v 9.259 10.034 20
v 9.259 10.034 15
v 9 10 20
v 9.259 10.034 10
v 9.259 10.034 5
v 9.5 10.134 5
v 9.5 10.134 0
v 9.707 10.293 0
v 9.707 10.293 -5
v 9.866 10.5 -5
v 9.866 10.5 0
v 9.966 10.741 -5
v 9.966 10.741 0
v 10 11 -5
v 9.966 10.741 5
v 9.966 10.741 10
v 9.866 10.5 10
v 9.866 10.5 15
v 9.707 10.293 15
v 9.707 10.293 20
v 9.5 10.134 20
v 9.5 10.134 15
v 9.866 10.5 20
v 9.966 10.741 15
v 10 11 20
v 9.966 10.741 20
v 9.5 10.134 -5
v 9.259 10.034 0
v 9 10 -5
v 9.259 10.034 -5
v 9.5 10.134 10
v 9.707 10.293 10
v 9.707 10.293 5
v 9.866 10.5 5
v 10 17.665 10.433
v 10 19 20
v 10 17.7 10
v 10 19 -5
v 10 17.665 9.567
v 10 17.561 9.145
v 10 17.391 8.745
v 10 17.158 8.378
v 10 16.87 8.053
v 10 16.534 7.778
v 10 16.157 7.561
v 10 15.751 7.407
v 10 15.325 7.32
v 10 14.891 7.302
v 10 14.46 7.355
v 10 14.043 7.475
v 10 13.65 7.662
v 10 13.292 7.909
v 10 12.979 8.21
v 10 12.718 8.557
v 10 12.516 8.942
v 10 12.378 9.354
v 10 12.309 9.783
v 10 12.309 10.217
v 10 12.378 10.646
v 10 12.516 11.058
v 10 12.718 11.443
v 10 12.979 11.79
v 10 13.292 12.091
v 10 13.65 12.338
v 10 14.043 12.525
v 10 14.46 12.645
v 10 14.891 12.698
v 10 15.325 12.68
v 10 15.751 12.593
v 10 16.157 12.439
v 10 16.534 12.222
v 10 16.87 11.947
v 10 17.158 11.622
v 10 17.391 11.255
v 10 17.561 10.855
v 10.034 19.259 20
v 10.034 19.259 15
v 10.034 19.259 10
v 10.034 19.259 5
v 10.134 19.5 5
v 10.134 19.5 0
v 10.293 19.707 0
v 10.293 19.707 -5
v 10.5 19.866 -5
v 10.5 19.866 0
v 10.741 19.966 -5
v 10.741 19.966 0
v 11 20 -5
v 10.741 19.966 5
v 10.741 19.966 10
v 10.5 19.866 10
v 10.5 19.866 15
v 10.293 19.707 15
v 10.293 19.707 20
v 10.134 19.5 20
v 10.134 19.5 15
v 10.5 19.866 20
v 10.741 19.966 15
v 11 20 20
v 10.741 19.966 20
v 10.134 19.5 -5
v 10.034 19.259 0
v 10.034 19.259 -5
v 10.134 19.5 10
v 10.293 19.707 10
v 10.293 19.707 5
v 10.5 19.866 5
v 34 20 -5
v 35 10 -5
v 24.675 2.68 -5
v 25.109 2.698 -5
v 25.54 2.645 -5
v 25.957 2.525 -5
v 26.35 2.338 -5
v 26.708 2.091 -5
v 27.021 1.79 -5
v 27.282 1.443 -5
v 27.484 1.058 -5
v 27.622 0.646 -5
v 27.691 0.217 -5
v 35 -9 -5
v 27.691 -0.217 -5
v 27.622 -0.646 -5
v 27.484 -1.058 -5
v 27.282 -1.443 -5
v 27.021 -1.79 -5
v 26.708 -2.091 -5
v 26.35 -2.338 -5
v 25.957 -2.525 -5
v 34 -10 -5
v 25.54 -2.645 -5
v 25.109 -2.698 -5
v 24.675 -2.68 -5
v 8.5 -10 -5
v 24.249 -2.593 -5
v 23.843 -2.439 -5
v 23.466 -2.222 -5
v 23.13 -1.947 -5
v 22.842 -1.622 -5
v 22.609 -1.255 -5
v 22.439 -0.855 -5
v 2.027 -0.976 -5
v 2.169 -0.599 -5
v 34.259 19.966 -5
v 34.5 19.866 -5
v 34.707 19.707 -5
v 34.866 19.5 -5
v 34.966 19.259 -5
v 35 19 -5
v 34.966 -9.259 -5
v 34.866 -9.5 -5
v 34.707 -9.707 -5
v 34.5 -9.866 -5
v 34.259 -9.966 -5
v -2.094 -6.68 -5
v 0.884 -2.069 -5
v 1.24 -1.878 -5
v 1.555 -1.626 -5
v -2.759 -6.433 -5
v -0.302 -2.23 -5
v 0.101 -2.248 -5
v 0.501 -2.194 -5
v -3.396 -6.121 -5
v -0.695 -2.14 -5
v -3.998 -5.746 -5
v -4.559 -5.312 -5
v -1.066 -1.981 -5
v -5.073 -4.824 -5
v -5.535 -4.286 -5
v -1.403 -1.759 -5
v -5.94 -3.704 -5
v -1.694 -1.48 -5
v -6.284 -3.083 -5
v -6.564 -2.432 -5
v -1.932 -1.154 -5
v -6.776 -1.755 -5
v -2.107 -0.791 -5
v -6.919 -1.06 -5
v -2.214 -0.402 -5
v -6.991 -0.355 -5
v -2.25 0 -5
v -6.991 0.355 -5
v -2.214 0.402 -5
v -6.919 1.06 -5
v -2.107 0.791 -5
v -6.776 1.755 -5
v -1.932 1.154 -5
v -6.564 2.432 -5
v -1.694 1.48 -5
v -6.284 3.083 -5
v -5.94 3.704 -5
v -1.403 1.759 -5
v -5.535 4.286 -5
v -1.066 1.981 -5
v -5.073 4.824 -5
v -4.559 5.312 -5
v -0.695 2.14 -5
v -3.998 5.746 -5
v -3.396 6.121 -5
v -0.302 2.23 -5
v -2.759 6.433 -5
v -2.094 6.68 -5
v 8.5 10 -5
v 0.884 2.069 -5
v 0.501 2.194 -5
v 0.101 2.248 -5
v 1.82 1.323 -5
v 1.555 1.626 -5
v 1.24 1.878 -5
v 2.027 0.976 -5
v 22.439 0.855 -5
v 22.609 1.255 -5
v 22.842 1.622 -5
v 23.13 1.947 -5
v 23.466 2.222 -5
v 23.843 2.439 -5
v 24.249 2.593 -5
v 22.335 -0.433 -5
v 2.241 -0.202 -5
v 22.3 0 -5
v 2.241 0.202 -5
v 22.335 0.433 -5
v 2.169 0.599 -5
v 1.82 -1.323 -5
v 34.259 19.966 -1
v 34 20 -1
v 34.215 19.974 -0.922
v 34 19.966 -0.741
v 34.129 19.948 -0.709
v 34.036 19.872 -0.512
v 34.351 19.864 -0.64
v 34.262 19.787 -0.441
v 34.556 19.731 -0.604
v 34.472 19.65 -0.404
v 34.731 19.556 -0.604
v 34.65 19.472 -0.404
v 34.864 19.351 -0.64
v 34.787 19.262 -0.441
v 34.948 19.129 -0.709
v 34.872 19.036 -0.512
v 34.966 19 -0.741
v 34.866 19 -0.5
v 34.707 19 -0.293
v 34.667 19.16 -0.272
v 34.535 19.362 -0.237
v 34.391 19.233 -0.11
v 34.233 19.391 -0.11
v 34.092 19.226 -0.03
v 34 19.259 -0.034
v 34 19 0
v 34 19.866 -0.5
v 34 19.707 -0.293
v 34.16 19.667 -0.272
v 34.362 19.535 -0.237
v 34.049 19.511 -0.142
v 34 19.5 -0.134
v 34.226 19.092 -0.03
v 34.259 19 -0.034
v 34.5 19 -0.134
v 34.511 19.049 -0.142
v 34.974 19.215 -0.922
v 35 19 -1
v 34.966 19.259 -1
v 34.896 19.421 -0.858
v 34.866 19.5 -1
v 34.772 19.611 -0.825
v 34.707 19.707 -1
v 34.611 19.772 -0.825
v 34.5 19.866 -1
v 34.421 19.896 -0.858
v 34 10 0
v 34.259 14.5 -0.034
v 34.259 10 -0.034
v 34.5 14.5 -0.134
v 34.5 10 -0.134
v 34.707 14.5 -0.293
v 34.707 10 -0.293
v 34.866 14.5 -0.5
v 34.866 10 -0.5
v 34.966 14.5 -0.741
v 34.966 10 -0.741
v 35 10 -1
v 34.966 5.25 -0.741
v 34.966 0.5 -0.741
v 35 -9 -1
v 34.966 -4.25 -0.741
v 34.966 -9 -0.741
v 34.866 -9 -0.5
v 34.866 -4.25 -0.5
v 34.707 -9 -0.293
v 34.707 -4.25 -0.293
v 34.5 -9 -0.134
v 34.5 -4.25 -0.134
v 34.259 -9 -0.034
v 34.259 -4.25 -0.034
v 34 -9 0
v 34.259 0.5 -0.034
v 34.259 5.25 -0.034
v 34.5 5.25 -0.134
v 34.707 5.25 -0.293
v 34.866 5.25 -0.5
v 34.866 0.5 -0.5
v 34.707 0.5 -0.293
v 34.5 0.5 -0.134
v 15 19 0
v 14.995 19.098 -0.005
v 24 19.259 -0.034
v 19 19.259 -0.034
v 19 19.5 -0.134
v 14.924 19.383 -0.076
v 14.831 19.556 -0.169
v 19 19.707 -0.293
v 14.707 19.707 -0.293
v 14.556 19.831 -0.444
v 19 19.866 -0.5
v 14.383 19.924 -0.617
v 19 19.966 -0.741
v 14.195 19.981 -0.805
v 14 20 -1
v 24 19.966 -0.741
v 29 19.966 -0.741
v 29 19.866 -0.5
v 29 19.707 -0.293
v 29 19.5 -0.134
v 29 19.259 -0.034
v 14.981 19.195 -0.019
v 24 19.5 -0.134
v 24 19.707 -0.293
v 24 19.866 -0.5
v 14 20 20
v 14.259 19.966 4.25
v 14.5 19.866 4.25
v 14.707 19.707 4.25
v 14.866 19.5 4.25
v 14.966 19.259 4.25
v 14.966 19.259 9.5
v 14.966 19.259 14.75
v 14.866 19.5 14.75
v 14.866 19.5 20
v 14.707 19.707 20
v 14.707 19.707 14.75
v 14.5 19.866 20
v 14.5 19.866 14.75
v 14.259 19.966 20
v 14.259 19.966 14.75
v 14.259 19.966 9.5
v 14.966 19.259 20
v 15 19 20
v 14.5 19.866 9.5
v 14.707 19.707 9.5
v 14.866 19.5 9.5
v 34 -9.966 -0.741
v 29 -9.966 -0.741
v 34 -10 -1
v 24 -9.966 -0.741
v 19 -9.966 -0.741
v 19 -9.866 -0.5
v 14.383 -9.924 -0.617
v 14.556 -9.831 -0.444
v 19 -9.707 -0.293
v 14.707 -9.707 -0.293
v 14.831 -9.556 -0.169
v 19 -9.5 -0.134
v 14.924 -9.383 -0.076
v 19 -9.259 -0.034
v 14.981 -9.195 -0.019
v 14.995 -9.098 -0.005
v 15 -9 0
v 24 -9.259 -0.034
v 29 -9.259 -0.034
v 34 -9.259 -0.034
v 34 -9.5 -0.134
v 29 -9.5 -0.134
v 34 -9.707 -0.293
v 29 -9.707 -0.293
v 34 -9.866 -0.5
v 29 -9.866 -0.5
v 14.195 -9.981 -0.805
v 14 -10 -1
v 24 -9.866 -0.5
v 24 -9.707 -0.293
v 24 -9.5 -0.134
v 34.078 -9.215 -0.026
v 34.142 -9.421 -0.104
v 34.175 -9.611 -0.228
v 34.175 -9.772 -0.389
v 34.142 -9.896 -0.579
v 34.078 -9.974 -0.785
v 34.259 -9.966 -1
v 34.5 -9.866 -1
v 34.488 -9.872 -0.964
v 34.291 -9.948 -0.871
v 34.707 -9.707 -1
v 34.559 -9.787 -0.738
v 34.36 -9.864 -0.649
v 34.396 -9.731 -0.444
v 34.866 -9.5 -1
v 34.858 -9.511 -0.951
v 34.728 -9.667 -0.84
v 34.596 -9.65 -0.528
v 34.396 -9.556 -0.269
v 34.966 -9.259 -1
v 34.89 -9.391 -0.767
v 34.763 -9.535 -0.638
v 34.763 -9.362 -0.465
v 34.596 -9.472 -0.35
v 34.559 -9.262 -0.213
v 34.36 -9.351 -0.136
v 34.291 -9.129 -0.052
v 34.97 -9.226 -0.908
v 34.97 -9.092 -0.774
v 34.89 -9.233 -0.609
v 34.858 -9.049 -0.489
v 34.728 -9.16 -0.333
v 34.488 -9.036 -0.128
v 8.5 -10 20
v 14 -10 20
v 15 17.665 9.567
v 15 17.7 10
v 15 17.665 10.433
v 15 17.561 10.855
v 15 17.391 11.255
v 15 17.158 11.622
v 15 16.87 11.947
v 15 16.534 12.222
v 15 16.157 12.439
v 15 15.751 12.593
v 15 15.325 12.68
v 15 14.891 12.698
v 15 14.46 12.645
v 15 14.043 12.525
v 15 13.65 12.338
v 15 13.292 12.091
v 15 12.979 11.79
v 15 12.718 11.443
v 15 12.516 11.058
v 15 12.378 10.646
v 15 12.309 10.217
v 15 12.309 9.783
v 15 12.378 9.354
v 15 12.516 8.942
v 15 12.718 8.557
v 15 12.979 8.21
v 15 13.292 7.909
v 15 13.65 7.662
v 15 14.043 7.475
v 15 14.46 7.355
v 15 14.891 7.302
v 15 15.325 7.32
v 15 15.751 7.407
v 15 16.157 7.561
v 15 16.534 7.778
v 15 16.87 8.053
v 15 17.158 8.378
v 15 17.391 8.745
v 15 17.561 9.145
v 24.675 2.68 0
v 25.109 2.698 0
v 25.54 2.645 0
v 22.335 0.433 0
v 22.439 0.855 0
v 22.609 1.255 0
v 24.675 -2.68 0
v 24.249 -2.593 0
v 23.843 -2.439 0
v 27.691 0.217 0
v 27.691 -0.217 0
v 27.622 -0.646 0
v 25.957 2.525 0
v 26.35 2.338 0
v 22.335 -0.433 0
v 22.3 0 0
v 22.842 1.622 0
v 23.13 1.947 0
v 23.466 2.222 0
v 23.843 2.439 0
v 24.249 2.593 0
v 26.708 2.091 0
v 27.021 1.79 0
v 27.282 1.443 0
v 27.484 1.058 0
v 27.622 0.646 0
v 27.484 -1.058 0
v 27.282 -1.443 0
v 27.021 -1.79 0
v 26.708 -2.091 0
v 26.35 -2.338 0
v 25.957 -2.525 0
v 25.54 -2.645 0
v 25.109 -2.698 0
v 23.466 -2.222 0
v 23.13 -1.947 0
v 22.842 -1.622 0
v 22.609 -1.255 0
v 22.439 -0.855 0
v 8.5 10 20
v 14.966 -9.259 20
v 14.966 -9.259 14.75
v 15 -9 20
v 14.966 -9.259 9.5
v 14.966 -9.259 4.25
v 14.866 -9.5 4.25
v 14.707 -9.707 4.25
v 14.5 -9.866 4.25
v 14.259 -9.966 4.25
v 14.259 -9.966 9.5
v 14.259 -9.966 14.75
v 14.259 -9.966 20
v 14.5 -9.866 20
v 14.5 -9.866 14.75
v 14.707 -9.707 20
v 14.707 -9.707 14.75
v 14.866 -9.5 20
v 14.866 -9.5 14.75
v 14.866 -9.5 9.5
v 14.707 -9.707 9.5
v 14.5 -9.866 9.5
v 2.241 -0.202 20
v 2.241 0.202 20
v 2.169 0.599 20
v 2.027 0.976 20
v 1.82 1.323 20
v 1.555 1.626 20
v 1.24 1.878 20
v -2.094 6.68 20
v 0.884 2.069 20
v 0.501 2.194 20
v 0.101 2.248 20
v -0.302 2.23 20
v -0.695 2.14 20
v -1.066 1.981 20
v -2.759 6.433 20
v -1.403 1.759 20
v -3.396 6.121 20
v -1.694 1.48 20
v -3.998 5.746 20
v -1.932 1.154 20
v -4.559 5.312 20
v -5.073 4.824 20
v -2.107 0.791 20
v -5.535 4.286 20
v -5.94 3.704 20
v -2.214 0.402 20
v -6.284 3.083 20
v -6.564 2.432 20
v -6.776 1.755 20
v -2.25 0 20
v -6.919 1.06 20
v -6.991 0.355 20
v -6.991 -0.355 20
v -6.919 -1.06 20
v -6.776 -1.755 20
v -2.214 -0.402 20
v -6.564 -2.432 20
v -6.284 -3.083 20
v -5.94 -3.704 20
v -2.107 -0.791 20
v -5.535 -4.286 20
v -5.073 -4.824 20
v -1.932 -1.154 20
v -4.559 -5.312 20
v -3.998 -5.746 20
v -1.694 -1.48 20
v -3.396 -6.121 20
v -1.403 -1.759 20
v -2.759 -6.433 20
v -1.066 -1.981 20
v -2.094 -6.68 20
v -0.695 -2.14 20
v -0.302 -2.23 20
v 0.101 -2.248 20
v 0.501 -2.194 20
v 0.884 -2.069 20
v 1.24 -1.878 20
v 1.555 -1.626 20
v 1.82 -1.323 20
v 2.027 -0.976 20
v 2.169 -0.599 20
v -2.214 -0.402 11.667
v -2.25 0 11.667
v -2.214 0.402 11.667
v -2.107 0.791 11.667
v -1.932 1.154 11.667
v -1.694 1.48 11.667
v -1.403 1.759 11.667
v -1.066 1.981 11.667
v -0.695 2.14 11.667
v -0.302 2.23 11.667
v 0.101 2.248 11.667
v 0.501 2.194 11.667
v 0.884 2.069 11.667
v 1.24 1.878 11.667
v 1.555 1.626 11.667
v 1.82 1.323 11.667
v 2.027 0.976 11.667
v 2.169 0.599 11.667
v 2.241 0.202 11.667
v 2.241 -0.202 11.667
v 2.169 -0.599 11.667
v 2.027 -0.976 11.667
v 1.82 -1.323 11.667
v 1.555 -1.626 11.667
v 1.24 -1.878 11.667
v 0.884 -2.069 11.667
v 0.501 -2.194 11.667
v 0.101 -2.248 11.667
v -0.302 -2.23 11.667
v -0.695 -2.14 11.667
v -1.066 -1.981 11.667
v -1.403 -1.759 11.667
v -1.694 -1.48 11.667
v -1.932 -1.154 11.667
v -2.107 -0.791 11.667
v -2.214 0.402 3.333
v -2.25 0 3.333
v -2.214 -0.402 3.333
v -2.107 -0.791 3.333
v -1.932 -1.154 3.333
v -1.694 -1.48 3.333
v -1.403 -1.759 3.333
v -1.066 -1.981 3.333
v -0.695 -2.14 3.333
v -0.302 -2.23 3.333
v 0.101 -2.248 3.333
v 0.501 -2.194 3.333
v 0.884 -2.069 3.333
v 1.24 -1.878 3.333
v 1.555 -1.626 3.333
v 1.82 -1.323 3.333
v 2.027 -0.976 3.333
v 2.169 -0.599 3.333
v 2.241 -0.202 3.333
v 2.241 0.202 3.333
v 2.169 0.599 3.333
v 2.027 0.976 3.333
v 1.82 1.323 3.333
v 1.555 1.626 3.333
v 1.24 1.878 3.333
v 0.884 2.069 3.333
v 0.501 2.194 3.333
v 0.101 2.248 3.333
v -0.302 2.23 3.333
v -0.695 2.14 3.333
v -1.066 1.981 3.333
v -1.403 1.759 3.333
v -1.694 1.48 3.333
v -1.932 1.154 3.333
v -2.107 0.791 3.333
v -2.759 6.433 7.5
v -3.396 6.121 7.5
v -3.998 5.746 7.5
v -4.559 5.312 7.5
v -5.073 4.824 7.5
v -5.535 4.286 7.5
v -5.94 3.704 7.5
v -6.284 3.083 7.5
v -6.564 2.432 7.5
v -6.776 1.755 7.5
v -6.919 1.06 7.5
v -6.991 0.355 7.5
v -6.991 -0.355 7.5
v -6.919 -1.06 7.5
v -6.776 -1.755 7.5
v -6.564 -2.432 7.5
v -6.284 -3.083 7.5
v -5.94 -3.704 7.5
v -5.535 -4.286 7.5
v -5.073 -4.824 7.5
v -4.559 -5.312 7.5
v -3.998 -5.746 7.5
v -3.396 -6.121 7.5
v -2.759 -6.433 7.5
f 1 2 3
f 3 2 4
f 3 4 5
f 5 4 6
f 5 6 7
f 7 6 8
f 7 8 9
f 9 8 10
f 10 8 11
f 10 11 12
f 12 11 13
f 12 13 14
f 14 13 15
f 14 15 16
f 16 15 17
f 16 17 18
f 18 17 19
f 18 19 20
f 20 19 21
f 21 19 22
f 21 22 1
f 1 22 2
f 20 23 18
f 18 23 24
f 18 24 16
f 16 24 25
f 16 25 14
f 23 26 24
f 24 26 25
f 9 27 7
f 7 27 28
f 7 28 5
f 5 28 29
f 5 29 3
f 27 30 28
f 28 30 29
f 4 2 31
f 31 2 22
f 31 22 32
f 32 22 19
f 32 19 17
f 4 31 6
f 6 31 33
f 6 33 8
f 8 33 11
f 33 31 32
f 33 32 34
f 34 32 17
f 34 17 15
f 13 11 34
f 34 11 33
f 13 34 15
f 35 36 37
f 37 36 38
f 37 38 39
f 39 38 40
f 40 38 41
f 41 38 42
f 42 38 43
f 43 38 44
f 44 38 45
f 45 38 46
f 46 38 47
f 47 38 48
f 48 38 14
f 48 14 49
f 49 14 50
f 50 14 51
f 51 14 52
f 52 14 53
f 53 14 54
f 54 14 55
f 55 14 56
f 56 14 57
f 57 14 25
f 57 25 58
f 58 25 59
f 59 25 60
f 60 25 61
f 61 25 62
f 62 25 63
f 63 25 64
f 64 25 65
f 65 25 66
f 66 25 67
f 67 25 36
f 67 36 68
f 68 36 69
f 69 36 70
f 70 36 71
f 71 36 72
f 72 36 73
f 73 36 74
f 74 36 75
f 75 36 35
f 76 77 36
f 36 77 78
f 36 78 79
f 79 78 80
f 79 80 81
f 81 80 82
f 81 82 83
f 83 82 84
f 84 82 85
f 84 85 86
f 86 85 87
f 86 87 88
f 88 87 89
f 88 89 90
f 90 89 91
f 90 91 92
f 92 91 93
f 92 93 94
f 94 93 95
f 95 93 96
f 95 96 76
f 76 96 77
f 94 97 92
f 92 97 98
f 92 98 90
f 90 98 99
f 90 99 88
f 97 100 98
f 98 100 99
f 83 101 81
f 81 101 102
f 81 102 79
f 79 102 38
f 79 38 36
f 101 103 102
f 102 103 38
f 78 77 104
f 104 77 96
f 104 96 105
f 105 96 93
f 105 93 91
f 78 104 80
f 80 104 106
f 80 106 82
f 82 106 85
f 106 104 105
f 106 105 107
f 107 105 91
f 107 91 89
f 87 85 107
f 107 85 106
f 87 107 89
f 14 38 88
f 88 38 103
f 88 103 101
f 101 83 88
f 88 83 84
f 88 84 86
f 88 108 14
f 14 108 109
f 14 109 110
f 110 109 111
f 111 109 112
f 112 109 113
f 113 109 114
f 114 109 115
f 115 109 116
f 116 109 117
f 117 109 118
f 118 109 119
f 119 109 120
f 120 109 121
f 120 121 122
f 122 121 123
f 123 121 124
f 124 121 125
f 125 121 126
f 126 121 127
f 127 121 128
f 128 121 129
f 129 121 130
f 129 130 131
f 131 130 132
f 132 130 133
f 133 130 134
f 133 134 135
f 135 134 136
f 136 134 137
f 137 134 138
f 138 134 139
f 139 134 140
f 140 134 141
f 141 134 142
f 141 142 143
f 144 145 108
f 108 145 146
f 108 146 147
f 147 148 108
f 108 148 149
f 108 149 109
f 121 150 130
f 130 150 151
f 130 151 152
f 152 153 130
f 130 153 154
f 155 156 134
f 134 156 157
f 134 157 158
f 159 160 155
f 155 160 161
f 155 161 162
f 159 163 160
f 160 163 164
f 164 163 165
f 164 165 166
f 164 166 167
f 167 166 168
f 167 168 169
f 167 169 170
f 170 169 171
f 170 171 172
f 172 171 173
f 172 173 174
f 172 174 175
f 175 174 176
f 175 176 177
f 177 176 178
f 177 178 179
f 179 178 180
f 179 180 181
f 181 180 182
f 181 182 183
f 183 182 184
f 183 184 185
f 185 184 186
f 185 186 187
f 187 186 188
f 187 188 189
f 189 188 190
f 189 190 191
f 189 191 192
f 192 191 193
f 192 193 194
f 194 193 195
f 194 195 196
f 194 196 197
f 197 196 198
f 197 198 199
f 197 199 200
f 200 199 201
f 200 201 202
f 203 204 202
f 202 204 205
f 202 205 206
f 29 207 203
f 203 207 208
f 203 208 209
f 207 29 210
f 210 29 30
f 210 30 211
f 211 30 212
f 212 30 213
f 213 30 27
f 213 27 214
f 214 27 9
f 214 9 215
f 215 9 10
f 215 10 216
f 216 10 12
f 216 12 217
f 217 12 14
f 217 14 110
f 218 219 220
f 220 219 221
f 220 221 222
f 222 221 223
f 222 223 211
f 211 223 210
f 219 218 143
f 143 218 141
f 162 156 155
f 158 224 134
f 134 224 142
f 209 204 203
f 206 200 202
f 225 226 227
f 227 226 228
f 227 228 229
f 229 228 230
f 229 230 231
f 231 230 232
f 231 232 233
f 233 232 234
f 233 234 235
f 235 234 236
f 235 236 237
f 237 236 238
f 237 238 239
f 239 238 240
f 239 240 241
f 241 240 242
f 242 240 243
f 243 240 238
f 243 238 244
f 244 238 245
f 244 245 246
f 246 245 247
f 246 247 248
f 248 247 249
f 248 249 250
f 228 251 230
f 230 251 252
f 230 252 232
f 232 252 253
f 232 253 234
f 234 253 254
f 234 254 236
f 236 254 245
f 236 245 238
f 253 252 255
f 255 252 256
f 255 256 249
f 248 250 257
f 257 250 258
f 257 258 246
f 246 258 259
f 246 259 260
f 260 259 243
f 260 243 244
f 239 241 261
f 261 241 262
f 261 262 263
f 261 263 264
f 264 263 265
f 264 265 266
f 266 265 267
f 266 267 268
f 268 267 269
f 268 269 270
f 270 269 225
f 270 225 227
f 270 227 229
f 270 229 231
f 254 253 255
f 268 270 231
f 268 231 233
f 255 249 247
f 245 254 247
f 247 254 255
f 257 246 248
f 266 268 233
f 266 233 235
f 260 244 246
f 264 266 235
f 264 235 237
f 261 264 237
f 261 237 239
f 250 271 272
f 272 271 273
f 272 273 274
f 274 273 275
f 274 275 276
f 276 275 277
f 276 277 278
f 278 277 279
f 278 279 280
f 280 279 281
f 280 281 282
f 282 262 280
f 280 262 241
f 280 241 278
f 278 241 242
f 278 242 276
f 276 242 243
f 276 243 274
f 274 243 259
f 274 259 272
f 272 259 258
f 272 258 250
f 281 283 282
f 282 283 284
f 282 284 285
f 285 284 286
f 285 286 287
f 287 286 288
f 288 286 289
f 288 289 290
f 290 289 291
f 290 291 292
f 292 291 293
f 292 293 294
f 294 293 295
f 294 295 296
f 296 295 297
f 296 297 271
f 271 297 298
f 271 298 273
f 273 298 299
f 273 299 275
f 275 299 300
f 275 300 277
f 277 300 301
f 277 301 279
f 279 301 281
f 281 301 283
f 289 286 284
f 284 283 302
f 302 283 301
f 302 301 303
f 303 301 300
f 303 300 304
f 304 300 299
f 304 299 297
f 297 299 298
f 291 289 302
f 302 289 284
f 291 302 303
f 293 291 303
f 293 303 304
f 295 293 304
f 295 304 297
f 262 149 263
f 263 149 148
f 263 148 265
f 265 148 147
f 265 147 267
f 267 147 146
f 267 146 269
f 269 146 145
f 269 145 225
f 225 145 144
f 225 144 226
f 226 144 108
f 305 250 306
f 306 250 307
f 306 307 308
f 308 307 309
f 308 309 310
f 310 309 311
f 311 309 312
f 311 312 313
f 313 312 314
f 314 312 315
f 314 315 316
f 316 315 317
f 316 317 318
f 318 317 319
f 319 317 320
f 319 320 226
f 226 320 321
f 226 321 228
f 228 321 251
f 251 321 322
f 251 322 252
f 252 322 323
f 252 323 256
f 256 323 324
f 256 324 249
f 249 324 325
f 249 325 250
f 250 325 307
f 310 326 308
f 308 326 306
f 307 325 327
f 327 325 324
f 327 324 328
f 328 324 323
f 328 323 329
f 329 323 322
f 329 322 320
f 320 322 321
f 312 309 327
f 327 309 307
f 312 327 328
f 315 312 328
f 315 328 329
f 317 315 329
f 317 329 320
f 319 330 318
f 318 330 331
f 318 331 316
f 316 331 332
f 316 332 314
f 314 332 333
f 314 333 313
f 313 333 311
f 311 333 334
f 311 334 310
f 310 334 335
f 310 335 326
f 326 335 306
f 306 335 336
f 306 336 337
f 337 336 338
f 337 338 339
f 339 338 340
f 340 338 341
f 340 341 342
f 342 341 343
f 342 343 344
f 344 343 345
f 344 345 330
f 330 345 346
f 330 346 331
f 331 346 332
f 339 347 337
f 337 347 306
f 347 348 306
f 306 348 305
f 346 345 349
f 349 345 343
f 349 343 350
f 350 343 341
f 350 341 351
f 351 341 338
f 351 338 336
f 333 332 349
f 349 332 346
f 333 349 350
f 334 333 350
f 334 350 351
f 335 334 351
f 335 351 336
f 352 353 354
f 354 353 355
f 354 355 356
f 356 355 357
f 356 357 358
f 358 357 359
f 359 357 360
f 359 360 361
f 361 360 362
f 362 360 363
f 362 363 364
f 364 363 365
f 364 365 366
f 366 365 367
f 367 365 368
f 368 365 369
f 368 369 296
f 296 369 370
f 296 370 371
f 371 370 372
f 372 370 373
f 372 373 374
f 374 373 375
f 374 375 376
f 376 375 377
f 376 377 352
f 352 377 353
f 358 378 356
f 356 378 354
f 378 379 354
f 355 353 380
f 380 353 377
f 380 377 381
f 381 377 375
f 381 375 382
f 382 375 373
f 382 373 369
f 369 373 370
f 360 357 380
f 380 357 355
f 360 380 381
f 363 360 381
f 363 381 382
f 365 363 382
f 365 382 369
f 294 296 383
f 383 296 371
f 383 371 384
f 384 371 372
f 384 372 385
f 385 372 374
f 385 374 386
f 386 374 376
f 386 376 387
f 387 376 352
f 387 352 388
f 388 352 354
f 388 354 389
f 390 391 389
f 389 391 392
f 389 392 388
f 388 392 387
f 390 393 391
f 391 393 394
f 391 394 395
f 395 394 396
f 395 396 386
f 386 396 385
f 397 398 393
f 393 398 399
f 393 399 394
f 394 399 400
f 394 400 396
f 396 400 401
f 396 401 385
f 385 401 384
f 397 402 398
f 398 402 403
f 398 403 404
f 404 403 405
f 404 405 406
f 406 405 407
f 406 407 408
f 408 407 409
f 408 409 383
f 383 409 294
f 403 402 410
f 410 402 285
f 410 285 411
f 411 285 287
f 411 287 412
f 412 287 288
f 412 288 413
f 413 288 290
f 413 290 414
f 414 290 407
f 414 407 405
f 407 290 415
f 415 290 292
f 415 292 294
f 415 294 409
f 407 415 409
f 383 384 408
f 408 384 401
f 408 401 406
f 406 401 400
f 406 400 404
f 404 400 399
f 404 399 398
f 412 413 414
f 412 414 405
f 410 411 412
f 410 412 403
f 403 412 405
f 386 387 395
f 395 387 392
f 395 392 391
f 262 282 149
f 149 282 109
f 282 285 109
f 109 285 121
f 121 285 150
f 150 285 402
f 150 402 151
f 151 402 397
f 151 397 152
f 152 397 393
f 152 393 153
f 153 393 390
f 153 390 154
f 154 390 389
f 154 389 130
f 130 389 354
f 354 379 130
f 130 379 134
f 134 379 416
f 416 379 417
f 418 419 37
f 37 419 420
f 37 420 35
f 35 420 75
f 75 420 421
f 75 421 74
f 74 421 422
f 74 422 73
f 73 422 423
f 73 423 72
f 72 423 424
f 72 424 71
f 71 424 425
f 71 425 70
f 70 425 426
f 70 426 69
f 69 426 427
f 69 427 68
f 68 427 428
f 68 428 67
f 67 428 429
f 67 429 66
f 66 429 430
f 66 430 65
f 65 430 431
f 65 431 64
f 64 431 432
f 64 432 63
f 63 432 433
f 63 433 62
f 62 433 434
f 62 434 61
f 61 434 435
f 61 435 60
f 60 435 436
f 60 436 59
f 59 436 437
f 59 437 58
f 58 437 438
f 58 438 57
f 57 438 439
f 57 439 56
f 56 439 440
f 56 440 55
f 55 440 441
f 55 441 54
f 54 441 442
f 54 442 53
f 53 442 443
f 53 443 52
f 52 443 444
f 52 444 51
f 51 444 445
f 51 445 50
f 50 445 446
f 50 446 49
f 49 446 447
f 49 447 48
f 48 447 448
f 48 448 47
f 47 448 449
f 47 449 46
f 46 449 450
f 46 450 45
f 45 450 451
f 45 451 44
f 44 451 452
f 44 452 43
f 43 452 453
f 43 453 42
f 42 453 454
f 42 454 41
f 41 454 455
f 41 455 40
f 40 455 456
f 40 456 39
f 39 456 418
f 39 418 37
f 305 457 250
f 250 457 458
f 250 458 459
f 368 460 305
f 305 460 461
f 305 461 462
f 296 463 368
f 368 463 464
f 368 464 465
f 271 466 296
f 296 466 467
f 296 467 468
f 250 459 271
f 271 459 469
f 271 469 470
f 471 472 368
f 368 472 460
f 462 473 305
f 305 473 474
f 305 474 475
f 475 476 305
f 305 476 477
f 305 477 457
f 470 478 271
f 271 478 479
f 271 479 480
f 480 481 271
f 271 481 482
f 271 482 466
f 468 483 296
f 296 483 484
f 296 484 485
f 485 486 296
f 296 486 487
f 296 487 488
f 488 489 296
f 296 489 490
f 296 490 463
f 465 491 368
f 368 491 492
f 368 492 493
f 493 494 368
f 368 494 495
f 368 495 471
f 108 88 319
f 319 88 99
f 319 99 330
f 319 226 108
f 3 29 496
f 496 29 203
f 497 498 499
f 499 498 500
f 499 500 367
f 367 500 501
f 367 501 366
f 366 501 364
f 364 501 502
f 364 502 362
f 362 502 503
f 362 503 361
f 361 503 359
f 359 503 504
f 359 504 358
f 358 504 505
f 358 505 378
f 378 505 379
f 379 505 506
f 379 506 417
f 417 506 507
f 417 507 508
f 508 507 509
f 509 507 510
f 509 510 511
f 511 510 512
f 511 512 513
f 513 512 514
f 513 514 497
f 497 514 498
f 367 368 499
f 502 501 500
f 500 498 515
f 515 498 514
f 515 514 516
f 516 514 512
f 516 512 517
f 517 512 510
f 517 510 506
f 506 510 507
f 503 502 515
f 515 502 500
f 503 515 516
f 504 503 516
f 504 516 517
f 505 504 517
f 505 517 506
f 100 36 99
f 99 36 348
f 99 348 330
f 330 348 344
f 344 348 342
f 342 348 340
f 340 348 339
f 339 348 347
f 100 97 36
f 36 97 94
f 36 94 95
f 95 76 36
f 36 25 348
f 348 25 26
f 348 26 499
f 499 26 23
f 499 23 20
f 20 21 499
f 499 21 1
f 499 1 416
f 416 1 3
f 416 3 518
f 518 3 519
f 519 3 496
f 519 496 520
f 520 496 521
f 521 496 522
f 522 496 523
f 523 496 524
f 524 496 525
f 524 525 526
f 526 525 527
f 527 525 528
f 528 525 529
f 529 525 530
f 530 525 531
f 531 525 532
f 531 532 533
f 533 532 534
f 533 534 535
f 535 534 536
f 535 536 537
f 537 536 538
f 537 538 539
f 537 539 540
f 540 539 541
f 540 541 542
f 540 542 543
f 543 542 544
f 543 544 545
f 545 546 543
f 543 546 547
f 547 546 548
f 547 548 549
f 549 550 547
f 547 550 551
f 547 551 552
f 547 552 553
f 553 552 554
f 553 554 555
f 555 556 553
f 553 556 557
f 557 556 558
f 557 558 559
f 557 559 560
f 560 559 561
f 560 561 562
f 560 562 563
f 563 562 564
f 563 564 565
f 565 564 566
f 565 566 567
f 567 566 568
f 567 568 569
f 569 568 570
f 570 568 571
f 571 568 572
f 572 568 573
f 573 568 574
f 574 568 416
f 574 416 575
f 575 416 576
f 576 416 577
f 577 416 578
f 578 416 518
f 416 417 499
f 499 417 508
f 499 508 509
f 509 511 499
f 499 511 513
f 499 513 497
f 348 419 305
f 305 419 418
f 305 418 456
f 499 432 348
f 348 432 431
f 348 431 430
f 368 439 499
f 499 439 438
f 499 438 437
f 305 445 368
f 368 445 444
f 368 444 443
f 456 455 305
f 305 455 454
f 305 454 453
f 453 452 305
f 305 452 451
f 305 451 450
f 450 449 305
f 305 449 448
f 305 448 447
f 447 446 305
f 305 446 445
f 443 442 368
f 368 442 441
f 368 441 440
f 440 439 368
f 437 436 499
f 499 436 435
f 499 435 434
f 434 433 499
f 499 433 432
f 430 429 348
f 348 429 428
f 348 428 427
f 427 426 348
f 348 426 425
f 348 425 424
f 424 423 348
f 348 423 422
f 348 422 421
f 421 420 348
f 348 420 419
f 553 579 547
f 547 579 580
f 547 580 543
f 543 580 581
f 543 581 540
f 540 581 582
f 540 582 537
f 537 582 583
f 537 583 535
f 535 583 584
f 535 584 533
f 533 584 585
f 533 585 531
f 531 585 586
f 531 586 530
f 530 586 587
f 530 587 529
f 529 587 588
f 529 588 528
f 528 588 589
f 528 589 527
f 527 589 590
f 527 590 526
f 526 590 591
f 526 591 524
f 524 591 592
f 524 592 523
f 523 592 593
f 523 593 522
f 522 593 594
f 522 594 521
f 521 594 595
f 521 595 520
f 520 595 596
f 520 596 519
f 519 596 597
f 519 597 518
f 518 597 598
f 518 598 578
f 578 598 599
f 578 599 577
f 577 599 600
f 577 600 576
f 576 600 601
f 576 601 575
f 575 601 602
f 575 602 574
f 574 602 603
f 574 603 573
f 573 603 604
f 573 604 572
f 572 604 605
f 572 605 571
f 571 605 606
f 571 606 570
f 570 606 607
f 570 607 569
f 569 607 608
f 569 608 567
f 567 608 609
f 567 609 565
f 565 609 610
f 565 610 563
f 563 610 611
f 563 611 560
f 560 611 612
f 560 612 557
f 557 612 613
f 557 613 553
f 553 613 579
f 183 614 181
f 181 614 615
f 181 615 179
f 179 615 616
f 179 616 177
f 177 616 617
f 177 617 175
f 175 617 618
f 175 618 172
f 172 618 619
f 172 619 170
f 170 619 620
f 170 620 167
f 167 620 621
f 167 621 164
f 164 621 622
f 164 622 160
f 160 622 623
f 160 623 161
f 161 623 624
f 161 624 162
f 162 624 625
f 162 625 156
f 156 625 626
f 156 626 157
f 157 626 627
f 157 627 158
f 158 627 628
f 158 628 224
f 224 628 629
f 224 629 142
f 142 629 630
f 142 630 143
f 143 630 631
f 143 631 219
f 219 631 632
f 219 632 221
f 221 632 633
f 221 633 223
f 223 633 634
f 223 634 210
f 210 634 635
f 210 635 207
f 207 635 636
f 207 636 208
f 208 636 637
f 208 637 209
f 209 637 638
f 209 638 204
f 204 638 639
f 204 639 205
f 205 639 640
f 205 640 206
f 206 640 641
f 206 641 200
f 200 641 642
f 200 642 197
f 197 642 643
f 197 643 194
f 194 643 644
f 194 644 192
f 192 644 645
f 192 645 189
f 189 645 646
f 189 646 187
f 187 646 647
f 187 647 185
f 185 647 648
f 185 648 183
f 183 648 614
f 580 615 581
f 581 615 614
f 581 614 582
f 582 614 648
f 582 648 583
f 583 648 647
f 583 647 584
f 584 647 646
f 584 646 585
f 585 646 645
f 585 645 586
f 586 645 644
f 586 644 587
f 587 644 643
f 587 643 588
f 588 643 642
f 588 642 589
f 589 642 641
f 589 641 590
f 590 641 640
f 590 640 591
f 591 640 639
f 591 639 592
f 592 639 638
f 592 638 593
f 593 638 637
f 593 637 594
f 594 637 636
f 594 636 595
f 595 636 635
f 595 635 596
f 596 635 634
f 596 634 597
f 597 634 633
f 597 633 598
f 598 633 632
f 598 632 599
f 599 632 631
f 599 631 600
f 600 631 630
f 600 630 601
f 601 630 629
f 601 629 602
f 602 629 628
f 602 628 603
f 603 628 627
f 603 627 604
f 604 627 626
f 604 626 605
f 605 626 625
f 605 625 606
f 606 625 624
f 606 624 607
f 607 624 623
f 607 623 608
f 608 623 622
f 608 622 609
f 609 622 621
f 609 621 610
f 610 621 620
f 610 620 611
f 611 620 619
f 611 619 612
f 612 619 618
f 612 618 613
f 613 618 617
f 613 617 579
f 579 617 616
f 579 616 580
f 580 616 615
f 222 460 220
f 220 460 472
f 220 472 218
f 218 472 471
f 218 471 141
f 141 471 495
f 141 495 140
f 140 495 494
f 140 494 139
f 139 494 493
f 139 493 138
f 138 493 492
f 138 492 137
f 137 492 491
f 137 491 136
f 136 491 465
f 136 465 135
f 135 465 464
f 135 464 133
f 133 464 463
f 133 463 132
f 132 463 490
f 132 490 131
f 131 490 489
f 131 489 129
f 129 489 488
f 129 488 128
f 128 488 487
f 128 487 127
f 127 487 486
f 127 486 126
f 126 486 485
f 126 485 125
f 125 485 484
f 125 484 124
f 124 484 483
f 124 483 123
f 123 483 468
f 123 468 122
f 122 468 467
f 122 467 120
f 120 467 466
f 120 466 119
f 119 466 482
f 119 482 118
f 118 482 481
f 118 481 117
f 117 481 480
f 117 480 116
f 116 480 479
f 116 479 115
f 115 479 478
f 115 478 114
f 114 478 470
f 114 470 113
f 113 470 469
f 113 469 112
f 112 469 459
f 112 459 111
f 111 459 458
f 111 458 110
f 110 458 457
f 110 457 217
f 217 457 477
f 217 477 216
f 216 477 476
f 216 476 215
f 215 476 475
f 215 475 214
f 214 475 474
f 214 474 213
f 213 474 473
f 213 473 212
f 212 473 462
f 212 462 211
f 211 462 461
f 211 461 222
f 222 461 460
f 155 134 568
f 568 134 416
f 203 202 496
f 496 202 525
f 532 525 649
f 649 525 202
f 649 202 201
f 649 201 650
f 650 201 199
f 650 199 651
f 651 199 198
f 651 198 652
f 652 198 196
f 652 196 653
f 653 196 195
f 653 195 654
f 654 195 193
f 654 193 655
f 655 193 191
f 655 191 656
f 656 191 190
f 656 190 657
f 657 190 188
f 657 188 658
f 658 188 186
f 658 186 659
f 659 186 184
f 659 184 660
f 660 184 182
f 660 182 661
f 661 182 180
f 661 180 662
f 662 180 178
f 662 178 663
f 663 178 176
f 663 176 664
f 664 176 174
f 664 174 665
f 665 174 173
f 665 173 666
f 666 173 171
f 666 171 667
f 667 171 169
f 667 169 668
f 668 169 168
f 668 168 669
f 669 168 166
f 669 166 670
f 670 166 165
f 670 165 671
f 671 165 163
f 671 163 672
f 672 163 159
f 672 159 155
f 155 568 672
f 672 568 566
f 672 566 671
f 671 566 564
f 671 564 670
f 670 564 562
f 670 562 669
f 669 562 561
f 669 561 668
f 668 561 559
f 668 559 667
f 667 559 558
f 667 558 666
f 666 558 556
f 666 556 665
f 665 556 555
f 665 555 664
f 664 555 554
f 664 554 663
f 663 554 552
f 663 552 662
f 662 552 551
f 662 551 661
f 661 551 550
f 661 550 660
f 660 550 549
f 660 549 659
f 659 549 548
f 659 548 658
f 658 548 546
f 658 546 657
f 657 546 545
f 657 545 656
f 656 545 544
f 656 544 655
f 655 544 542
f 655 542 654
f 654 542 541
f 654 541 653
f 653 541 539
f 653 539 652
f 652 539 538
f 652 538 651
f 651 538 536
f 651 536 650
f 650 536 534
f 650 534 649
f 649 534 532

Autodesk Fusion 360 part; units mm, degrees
sketch "スケッチ1" plane through (0, 0, 0) normal (0, 0, 1) x (1, 0, 0)
  circle A0 centre (0, 0) radius 2.25
  circle A1 centre (0, 0) radius 7
  line L0 (-2.0936, 6.6796) -> (8.5, 10)
  line L1 (8.5, 10) -> (35, 10)
  line L2 (35, 10) -> (35, -10)
  line L3 (35, -10) -> (8.5, -10)
  line L4 (8.5, -10) -> (-2.0936, -6.6796)
  circle A2 centre (25, 0) radius 2.7
  line L5 (25, 2.7) -> (35, 2.7)
  line L6 (25, -2.7) -> (35, -2.7)
  line L7 (35, 10) -> (10, 10)
  line L8 (10, 10) -> (10, 20)
  line L9 (10, 20) -> (35, 20)
  line L10 (35, 20) -> (35, 10)
  line L11 (10, 20) -> (15, 20)
  line L12 (15, 20) -> (15, 10)
  line L13 (15, 10) -> (10, 10)
  line L14 (10, 10) -> (10, 20)
  line L15 (10, -10) -> (10, 10)
  dimension "d1" = 14
  dimension "d2" = 4.5
  dimension "d3" = 35
  dimension "d4" = 10
  dimension "d5" = 10
  dimension "d6" = 26.5
  dimension "d7" = 26.5
  dimension "d8" = 5.4
  dimension "d9" = 10
  dimension "d36" = 10
  dimension "d37" = 25
  dimension "d38" = 5
  dimension "d47" = 25
extrude "押し出し1" add sketch "スケッチ1" against normal blind 5 contours A1 | A1 L0 L1 L3 L4 L15 | L1 L2 L3 A2 L5 L6 L7 L13 L15 | L2 A2 L5 L6
sketch "スケッチ2" plane through (0, 0, 0) normal (0, 0, 1) x (1, 0, 0)
  line L0 (8.5, 10) -> (35, 10)
  line L1 (35, -10) -> (8.5, -10)
  line L2 (15, 10) -> (15, -10)
  line L3 (8.5, 10) -> (8.5, -10)
  line L4 (10, 10) -> (10, -10)
  line L5 (8.5, 5) -> (10, 5)
  line L6 (8.5, -5) -> (10, -5)
  dimension "d12" = 1.5
  dimension "d13" = 5
  dimension "d14" = 5
  dimension "d15" = 5
extrude "押し出し2" add sketch "スケッチ2" along normal blind 20 contours L0 L1 L2 L4
extrude "Extrude6" add sketch "スケッチ1" along normal up to surface (20 mm away) contours A1 | A1 L0 L1 L3 L4 L15
fillet "フィレット1" radius 1 2 edges at (15, -10, 10) (35, -10, -2.5)
extrude "Extrude3" add sketch "スケッチ1" against normal blind 5 contours L1 L7 L8 L9 L11 L12 L13 L14 | L1 L7 L9 L10 L12
extrude "Extrude4" add sketch "スケッチ1" along normal up to surface (20 mm away) contours L1 L7 L8 L9 L11 L12 L13 L14
sketch "Sketch3" plane through (10, 0, 0) normal (-1, 0, 0) x (0, -1, 0)
  line L0 (-20, 20) -> (-20, -5)
  line L1 (-20, -5) -> (-10, -5)
  line L2 (-10, -5) -> (-10, 20)
  line L3 (-10, 20) -> (-20, 20)
  line L4 (-10, 0) -> (-20, 0) construction
  line L5 (-15, 0) -> (-15, 20) construction
  line L6 (-20, 0) -> (-20, 20) construction
  line L7 (-20, 10) -> (-10, 10) construction
  circle A0 centre (-15, 10) radius 2.7
  dimension "d43" = 5.4
extrude "Extrude5" cut sketch "Sketch3" against normal blind 5 contours A0
fillet "Fillet7" radius 1 8 edges at (15, 20, 10) (10, 20, 7.5) (35, 0.5, 0) (35, 15, 0) (34.7071, -9.7071, 0) (24, -10, 0) (25, 20, 0) (35, 20, -2.5)
fillet "Fillet9" radius 1 1 edges at (10, 10, 7.5)
equation "d3 = 29 mm + 6 mm"
equation "d6 = 20.5 mm + 6 mm"
equation "d7 = 20.5 mm + 6 mm"
equation "d9 = 4 mm + 6 mm"
